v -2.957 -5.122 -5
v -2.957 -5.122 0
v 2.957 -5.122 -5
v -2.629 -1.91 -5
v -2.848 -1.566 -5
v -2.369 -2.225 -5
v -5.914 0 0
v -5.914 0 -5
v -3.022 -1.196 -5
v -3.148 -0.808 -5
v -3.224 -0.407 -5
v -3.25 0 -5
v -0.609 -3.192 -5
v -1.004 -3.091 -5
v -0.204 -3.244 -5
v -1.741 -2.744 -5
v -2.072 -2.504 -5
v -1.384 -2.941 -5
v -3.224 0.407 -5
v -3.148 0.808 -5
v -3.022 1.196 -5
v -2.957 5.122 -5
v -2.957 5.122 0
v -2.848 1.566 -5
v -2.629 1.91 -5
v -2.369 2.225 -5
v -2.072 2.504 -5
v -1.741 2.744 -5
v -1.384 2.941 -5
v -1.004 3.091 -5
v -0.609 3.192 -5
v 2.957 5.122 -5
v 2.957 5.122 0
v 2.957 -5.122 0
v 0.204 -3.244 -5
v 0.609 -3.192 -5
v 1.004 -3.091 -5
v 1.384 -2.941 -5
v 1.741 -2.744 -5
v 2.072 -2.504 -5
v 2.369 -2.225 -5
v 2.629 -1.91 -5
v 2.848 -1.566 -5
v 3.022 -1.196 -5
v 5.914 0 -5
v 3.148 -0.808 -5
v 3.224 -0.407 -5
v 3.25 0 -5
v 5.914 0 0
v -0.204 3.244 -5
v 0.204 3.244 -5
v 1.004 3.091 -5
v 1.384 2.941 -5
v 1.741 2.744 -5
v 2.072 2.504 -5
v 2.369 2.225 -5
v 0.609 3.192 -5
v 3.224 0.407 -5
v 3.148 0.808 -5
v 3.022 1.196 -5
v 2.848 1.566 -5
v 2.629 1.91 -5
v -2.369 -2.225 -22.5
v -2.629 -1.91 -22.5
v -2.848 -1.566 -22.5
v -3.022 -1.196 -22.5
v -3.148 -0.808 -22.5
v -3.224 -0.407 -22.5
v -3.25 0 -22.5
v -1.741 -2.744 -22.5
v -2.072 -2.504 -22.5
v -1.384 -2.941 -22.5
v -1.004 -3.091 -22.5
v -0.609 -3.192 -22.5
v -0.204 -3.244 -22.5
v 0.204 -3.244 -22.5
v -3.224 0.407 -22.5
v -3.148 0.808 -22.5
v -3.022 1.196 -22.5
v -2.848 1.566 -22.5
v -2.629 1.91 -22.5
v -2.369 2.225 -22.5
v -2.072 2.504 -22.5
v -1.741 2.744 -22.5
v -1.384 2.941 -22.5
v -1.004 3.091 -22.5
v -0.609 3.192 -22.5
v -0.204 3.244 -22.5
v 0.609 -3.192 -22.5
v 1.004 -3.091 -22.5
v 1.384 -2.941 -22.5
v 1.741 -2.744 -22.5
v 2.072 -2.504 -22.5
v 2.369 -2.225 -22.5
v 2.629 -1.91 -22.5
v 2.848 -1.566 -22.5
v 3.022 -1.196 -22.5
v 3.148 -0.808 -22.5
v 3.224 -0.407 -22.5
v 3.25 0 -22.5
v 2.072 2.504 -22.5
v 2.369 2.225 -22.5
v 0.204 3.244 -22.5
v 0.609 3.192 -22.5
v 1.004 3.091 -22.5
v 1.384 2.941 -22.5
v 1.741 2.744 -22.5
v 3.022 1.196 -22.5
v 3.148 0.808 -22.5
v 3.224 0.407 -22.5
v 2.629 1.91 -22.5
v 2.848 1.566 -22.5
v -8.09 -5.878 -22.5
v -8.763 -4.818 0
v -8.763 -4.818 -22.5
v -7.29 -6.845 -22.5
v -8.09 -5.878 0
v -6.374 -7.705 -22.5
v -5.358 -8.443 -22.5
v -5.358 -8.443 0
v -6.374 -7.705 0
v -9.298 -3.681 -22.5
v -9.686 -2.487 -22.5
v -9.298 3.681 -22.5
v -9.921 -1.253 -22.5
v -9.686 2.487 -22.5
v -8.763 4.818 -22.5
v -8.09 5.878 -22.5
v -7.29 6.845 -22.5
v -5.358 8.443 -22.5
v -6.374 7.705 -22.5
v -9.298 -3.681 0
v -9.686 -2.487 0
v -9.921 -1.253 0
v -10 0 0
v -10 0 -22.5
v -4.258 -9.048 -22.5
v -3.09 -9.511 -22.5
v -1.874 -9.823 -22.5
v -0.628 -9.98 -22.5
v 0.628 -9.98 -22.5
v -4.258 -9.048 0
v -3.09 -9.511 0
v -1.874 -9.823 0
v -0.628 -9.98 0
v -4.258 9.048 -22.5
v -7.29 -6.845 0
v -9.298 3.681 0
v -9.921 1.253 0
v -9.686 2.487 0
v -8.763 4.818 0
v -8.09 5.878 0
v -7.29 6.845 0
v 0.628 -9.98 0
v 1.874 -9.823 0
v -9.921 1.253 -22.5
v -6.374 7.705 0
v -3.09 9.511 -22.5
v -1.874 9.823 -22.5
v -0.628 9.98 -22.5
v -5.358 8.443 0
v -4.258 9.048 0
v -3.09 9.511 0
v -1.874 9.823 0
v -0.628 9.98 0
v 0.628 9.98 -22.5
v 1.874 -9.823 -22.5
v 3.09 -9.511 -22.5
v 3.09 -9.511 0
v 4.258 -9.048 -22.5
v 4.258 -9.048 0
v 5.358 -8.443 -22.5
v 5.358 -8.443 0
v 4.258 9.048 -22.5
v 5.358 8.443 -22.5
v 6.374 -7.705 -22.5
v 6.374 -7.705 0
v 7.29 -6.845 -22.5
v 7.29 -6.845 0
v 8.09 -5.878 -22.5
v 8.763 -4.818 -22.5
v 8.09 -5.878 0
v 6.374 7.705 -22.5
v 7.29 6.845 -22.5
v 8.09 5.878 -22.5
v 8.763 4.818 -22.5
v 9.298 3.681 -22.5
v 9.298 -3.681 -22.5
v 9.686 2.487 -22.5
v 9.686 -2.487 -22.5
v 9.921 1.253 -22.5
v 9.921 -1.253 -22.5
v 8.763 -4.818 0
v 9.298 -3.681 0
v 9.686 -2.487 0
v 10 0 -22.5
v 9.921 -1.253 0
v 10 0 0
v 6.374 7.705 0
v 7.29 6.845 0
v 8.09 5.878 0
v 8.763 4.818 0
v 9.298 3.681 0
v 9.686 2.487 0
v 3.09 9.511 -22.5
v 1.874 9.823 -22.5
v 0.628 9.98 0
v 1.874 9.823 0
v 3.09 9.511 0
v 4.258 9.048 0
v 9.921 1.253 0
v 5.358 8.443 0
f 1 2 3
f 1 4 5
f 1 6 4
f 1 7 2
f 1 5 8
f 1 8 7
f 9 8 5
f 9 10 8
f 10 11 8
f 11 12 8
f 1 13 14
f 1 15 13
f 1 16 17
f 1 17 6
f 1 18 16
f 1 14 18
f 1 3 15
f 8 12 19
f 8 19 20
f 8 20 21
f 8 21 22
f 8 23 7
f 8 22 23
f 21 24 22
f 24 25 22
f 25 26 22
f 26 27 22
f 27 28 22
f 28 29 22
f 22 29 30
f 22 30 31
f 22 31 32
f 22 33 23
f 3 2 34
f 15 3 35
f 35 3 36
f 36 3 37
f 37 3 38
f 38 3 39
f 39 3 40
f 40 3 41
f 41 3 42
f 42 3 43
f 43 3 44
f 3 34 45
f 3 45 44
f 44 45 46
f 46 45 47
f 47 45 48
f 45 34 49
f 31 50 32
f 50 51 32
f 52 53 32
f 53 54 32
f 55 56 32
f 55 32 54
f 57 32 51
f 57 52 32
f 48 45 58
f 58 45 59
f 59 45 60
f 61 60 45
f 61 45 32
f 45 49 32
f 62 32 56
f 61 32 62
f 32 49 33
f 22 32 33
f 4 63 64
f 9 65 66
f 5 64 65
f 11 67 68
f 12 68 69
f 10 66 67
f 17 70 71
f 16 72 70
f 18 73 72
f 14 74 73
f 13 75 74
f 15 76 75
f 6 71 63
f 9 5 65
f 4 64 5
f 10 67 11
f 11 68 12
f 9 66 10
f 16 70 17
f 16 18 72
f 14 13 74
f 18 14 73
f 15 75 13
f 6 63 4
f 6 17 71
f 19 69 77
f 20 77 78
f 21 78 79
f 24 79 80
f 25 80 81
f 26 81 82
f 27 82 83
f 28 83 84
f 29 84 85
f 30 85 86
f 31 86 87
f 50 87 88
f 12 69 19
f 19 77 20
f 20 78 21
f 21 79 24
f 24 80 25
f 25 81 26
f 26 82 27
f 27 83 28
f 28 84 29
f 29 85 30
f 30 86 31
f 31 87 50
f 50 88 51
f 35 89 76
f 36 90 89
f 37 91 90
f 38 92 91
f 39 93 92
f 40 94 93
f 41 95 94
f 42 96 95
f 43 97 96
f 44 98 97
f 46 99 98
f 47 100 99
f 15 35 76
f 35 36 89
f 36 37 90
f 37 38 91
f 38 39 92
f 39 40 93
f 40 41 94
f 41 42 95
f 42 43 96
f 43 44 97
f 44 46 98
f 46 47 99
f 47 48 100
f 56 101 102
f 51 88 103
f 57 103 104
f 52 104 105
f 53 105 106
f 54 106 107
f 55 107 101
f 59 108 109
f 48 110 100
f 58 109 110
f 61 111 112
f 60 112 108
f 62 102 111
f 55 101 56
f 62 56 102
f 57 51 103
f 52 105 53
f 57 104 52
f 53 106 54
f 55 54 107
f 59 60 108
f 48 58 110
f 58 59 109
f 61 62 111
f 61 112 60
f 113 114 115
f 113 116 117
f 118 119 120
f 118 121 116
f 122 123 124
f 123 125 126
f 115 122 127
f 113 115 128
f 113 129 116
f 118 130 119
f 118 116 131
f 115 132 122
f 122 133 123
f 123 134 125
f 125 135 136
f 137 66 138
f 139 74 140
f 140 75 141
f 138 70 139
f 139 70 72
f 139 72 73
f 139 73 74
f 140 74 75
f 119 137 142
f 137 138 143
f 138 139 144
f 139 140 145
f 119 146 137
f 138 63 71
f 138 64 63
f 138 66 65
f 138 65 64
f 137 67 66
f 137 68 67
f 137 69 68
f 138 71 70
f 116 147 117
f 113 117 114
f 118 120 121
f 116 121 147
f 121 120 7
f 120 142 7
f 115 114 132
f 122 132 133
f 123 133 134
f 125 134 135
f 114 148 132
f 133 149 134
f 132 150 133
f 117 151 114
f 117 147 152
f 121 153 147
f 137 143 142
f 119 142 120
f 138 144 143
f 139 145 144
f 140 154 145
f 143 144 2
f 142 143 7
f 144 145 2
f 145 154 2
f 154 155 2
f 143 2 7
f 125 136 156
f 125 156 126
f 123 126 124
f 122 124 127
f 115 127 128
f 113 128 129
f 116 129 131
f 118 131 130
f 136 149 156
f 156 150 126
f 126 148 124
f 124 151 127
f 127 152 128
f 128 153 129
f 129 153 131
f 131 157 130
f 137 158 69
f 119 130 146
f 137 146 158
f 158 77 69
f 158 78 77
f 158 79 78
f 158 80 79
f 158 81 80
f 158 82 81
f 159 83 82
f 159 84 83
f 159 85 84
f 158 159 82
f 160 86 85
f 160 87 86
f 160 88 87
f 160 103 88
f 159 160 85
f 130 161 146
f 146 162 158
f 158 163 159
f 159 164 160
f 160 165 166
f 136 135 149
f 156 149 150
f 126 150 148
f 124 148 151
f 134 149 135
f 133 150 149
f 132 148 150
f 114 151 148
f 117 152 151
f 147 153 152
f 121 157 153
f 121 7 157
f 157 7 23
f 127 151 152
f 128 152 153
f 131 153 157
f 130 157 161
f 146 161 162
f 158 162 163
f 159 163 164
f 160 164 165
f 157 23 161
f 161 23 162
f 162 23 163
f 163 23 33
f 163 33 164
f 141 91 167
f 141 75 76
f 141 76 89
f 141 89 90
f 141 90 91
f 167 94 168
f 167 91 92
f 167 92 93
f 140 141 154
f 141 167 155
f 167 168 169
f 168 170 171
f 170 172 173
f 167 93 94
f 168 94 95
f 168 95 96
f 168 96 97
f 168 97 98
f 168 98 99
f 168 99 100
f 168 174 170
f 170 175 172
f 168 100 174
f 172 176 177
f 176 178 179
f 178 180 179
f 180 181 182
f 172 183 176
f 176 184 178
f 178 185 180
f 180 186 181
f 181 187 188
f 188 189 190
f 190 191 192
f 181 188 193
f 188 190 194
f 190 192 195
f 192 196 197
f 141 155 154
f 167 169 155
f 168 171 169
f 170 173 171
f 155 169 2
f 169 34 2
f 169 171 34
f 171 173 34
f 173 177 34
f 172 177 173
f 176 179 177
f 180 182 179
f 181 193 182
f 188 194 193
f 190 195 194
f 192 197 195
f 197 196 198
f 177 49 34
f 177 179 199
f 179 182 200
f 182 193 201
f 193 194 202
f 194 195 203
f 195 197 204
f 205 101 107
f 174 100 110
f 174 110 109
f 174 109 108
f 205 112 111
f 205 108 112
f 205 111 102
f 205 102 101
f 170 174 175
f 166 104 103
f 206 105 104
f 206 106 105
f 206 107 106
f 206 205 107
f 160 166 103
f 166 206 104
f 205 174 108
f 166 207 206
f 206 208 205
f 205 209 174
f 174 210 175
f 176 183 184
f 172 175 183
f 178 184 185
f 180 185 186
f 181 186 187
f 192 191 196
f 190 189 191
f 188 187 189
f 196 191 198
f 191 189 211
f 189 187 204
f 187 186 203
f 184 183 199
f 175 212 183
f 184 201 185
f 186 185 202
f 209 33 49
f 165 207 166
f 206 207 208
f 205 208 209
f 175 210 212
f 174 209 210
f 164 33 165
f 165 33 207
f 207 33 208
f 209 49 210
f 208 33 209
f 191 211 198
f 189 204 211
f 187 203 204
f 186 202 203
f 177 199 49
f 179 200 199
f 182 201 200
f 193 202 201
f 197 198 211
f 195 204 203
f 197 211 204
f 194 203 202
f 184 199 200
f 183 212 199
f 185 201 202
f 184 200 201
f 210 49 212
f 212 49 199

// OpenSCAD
$fn = 50;

difference() {
	union() {
		translate(v = [0, 0, -22.5]) {
			cylinder(h = 22.5, r = 10.0);
		}
	}
	union() {
		translate(v = [0, 0, 0]) {
			rotate(a = [0, 0, 0]) {
				difference() {
					union() {
						translate(v = [0, 0, -5]) {
							linear_extrude(height = 5) {
								polygon(points = [[5.914249999999999, 0.0], [2.957125, 5.1218907443321156], [-2.9571249999999982, 5.1218907443321156], [-5.914249999999999, 7.242867331857232e-16], [-2.9571250000000022, -5.121890744332115], [2.9571249999999956, -5.121890744332118]]);
							}
						}
					}
					union();
				}
			}
		}
		#translate(v = [0, 0, -100.0]) {
			cylinder(h = 200, r = 3.25);
		}
	}
}
